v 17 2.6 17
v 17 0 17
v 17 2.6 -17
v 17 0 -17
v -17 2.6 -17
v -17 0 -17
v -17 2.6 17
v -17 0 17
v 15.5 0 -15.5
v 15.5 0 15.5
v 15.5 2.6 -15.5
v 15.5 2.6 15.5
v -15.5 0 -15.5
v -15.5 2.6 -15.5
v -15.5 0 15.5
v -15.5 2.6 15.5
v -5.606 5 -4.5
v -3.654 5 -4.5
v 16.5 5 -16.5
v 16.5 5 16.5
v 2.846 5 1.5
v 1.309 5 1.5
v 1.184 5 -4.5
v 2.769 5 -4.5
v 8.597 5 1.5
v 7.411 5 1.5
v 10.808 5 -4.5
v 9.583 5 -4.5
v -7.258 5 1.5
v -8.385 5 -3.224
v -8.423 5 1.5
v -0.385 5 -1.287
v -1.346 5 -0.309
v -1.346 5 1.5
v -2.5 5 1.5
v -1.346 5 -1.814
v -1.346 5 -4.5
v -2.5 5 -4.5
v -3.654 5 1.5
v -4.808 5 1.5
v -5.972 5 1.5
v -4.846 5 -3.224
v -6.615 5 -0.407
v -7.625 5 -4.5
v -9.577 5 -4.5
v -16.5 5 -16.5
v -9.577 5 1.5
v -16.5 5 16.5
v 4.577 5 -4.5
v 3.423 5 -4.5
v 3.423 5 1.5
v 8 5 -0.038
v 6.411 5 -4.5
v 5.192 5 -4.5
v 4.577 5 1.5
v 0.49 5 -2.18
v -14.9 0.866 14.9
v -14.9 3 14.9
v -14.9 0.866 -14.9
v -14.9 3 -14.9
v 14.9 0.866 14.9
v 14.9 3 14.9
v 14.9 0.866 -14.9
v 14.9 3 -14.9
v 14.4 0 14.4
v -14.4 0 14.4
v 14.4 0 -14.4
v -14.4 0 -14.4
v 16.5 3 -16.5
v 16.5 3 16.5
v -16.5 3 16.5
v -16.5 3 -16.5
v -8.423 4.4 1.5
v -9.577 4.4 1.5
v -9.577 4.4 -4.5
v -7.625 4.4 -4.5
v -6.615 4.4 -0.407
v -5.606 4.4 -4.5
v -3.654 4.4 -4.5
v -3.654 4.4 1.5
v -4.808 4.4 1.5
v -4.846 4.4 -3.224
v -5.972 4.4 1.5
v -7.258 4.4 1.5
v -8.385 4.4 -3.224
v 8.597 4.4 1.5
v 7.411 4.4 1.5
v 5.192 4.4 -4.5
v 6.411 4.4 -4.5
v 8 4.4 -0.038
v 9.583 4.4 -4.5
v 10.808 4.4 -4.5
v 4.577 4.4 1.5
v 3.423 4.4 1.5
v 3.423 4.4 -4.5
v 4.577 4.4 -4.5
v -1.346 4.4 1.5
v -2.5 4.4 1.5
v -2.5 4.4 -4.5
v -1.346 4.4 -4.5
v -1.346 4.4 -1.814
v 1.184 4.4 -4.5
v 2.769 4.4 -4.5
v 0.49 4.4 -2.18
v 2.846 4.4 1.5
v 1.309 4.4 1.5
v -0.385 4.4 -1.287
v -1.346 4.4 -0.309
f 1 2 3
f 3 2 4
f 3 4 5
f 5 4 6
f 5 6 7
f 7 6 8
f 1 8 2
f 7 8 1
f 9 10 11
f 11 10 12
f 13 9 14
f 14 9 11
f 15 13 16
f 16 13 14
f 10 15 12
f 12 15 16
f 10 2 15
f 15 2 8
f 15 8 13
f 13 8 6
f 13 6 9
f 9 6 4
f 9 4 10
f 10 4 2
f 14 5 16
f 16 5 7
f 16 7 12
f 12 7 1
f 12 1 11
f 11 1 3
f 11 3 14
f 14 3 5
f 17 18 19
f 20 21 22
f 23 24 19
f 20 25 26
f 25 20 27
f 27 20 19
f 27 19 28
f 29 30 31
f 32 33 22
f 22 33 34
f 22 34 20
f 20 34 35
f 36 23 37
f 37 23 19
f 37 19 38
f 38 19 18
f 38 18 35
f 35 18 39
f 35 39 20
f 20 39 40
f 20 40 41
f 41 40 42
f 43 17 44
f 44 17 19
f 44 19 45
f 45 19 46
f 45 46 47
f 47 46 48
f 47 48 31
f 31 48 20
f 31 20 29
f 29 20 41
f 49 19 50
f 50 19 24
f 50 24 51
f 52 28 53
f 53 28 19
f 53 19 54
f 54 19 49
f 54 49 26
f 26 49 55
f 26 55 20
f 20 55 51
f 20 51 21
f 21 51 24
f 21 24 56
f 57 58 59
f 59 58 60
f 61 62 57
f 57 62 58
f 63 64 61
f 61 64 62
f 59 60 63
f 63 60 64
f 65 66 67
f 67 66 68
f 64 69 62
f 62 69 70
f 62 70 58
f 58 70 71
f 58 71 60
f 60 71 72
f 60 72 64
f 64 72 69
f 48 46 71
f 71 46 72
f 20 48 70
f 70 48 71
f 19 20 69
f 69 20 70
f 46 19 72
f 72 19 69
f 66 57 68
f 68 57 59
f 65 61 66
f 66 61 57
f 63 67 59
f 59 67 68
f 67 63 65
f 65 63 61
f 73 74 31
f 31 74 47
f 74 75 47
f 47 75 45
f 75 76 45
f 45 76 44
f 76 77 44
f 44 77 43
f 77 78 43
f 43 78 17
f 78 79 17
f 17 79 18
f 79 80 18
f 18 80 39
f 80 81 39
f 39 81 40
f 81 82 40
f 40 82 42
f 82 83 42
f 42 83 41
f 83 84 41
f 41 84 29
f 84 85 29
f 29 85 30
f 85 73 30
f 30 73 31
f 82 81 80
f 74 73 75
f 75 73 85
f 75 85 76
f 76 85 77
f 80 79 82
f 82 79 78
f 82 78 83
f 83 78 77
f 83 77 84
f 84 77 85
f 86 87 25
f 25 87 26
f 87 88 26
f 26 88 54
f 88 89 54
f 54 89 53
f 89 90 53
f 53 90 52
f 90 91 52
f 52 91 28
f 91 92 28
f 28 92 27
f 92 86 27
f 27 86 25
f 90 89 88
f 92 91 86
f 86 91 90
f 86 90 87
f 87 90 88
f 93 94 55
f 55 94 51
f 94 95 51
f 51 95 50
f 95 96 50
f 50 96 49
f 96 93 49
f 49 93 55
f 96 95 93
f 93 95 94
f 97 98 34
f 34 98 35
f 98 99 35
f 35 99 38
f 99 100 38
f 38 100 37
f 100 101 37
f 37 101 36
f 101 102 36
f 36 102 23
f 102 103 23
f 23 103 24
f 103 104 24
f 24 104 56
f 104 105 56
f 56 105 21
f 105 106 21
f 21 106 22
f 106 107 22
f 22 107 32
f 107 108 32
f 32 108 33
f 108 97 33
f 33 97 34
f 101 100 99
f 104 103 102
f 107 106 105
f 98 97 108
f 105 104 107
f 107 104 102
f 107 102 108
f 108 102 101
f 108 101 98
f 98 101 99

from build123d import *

# Parameters (mm, degrees)
SKETCH1_W           = 29.8
SKETCH1_H           = 29.8
BOSS_EXTRUDE1_DEPTH = 3
SKETCH2_W           = 33
SKETCH2_H           = 33
BOSS_EXTRUDE2_DEPTH = 2
SKETCH5_W           = 34
SKETCH5_H           = 34
SKETCH5_W_2         = 31
SKETCH5_H_2         = 31
BOSS_EXTRUDE4_DEPTH = 2.6
CHAMFER1_SIZE       = 0.5
CHAMFER1_SIZE2      = 0.866025404
SKETCH3_W           = 1.153846154
SKETCH3_H           = 6
CUT_EXTRUDE1_DEPTH  = 0.6


with BuildPart() as part:
    # Sketch1 → Boss-Extrude1 (new body)
    with BuildSketch(Plane(origin=(0, 0, 0), x_dir=(1, 0, 0), z_dir=(0, 1, 0))):
        Rectangle(SKETCH1_W, SKETCH1_H)
    extrude(amount=BOSS_EXTRUDE1_DEPTH)

    # Sketch2 → Boss-Extrude2 (add)
    with BuildSketch(Plane(origin=(0, 3, 0), x_dir=(1, 0, 0), z_dir=(0, 1, 0))):
        Rectangle(SKETCH2_W, SKETCH2_H)
    extrude(amount=BOSS_EXTRUDE2_DEPTH)

    # Chamfer1
    chamfer1_edges = [part.edges().sort_by_distance(p)[0] for p in [
        (0, 0, -14.9),
        (14.9, 0, 0),
        (0, 0, 14.9),
        (-14.9, 0, 0),
    ]]
    chamfer1_side = [part.faces().sort_by_distance(p)[0] for p in [
        (0, 0, 0),
    ]]
    chamfer(chamfer1_edges, length=CHAMFER1_SIZE, length2=CHAMFER1_SIZE2, reference=chamfer1_side[0])

    # Sketch3 → Cut-Extrude1 (cut)
    with BuildSketch(Plane(origin=(0, 5, 0), x_dir=(1, 0, 0), z_dir=(0, 1, 0))):
        Polygon((-9.576923077, -1.5), (-9.576923077, 4.5), (-7.625, 4.5), (-6.615384615, 0.407451923), (-5.605769231, 4.5), (-3.653846154, 4.5), (-3.653846154, -1.5), (-4.807692308, -1.5), (-4.846153846, 3.223557692), (-5.972355769, -1.5), (-7.258413462, -1.5), (-8.384615385, 3.223557692), (-8.423076923, -1.5), align=None)
        Polygon((-2.5, -1.5), (-2.5, 4.5), (-1.346153846, 4.5), (-1.346153846, 1.813701923), (1.183894231, 4.5), (2.769230769, 4.5), (0.490384615, 2.180288462), (2.846153846, -1.5), (1.308894231, -1.5), (-0.384615385, 1.287259615), (-1.346153846, 0.308894231), (-1.346153846, -1.5), align=None)
        with Locations((4, 1.5)):
            Rectangle(SKETCH3_W, SKETCH3_H)
        Polygon((7.411057692, -1.5), (5.192307692, 4.5), (6.411057692, 4.5), (8, 0.038461538), (9.582932692, 4.5), (10.807692308, 4.5), (8.597355769, -1.5), align=None)
    extrude(amount=-CUT_EXTRUDE1_DEPTH, mode=Mode.SUBTRACT)


with BuildPart() as body_2:
    # Sketch5 → Boss-Extrude4 (new body)
    with BuildSketch(Plane.XZ):
        Rectangle(SKETCH5_W, SKETCH5_H)
        Rectangle(SKETCH5_W_2, SKETCH5_H_2, mode=Mode.SUBTRACT)
    extrude(amount=-BOSS_EXTRUDE4_DEPTH)


solid = Compound([part.part, body_2.part])
